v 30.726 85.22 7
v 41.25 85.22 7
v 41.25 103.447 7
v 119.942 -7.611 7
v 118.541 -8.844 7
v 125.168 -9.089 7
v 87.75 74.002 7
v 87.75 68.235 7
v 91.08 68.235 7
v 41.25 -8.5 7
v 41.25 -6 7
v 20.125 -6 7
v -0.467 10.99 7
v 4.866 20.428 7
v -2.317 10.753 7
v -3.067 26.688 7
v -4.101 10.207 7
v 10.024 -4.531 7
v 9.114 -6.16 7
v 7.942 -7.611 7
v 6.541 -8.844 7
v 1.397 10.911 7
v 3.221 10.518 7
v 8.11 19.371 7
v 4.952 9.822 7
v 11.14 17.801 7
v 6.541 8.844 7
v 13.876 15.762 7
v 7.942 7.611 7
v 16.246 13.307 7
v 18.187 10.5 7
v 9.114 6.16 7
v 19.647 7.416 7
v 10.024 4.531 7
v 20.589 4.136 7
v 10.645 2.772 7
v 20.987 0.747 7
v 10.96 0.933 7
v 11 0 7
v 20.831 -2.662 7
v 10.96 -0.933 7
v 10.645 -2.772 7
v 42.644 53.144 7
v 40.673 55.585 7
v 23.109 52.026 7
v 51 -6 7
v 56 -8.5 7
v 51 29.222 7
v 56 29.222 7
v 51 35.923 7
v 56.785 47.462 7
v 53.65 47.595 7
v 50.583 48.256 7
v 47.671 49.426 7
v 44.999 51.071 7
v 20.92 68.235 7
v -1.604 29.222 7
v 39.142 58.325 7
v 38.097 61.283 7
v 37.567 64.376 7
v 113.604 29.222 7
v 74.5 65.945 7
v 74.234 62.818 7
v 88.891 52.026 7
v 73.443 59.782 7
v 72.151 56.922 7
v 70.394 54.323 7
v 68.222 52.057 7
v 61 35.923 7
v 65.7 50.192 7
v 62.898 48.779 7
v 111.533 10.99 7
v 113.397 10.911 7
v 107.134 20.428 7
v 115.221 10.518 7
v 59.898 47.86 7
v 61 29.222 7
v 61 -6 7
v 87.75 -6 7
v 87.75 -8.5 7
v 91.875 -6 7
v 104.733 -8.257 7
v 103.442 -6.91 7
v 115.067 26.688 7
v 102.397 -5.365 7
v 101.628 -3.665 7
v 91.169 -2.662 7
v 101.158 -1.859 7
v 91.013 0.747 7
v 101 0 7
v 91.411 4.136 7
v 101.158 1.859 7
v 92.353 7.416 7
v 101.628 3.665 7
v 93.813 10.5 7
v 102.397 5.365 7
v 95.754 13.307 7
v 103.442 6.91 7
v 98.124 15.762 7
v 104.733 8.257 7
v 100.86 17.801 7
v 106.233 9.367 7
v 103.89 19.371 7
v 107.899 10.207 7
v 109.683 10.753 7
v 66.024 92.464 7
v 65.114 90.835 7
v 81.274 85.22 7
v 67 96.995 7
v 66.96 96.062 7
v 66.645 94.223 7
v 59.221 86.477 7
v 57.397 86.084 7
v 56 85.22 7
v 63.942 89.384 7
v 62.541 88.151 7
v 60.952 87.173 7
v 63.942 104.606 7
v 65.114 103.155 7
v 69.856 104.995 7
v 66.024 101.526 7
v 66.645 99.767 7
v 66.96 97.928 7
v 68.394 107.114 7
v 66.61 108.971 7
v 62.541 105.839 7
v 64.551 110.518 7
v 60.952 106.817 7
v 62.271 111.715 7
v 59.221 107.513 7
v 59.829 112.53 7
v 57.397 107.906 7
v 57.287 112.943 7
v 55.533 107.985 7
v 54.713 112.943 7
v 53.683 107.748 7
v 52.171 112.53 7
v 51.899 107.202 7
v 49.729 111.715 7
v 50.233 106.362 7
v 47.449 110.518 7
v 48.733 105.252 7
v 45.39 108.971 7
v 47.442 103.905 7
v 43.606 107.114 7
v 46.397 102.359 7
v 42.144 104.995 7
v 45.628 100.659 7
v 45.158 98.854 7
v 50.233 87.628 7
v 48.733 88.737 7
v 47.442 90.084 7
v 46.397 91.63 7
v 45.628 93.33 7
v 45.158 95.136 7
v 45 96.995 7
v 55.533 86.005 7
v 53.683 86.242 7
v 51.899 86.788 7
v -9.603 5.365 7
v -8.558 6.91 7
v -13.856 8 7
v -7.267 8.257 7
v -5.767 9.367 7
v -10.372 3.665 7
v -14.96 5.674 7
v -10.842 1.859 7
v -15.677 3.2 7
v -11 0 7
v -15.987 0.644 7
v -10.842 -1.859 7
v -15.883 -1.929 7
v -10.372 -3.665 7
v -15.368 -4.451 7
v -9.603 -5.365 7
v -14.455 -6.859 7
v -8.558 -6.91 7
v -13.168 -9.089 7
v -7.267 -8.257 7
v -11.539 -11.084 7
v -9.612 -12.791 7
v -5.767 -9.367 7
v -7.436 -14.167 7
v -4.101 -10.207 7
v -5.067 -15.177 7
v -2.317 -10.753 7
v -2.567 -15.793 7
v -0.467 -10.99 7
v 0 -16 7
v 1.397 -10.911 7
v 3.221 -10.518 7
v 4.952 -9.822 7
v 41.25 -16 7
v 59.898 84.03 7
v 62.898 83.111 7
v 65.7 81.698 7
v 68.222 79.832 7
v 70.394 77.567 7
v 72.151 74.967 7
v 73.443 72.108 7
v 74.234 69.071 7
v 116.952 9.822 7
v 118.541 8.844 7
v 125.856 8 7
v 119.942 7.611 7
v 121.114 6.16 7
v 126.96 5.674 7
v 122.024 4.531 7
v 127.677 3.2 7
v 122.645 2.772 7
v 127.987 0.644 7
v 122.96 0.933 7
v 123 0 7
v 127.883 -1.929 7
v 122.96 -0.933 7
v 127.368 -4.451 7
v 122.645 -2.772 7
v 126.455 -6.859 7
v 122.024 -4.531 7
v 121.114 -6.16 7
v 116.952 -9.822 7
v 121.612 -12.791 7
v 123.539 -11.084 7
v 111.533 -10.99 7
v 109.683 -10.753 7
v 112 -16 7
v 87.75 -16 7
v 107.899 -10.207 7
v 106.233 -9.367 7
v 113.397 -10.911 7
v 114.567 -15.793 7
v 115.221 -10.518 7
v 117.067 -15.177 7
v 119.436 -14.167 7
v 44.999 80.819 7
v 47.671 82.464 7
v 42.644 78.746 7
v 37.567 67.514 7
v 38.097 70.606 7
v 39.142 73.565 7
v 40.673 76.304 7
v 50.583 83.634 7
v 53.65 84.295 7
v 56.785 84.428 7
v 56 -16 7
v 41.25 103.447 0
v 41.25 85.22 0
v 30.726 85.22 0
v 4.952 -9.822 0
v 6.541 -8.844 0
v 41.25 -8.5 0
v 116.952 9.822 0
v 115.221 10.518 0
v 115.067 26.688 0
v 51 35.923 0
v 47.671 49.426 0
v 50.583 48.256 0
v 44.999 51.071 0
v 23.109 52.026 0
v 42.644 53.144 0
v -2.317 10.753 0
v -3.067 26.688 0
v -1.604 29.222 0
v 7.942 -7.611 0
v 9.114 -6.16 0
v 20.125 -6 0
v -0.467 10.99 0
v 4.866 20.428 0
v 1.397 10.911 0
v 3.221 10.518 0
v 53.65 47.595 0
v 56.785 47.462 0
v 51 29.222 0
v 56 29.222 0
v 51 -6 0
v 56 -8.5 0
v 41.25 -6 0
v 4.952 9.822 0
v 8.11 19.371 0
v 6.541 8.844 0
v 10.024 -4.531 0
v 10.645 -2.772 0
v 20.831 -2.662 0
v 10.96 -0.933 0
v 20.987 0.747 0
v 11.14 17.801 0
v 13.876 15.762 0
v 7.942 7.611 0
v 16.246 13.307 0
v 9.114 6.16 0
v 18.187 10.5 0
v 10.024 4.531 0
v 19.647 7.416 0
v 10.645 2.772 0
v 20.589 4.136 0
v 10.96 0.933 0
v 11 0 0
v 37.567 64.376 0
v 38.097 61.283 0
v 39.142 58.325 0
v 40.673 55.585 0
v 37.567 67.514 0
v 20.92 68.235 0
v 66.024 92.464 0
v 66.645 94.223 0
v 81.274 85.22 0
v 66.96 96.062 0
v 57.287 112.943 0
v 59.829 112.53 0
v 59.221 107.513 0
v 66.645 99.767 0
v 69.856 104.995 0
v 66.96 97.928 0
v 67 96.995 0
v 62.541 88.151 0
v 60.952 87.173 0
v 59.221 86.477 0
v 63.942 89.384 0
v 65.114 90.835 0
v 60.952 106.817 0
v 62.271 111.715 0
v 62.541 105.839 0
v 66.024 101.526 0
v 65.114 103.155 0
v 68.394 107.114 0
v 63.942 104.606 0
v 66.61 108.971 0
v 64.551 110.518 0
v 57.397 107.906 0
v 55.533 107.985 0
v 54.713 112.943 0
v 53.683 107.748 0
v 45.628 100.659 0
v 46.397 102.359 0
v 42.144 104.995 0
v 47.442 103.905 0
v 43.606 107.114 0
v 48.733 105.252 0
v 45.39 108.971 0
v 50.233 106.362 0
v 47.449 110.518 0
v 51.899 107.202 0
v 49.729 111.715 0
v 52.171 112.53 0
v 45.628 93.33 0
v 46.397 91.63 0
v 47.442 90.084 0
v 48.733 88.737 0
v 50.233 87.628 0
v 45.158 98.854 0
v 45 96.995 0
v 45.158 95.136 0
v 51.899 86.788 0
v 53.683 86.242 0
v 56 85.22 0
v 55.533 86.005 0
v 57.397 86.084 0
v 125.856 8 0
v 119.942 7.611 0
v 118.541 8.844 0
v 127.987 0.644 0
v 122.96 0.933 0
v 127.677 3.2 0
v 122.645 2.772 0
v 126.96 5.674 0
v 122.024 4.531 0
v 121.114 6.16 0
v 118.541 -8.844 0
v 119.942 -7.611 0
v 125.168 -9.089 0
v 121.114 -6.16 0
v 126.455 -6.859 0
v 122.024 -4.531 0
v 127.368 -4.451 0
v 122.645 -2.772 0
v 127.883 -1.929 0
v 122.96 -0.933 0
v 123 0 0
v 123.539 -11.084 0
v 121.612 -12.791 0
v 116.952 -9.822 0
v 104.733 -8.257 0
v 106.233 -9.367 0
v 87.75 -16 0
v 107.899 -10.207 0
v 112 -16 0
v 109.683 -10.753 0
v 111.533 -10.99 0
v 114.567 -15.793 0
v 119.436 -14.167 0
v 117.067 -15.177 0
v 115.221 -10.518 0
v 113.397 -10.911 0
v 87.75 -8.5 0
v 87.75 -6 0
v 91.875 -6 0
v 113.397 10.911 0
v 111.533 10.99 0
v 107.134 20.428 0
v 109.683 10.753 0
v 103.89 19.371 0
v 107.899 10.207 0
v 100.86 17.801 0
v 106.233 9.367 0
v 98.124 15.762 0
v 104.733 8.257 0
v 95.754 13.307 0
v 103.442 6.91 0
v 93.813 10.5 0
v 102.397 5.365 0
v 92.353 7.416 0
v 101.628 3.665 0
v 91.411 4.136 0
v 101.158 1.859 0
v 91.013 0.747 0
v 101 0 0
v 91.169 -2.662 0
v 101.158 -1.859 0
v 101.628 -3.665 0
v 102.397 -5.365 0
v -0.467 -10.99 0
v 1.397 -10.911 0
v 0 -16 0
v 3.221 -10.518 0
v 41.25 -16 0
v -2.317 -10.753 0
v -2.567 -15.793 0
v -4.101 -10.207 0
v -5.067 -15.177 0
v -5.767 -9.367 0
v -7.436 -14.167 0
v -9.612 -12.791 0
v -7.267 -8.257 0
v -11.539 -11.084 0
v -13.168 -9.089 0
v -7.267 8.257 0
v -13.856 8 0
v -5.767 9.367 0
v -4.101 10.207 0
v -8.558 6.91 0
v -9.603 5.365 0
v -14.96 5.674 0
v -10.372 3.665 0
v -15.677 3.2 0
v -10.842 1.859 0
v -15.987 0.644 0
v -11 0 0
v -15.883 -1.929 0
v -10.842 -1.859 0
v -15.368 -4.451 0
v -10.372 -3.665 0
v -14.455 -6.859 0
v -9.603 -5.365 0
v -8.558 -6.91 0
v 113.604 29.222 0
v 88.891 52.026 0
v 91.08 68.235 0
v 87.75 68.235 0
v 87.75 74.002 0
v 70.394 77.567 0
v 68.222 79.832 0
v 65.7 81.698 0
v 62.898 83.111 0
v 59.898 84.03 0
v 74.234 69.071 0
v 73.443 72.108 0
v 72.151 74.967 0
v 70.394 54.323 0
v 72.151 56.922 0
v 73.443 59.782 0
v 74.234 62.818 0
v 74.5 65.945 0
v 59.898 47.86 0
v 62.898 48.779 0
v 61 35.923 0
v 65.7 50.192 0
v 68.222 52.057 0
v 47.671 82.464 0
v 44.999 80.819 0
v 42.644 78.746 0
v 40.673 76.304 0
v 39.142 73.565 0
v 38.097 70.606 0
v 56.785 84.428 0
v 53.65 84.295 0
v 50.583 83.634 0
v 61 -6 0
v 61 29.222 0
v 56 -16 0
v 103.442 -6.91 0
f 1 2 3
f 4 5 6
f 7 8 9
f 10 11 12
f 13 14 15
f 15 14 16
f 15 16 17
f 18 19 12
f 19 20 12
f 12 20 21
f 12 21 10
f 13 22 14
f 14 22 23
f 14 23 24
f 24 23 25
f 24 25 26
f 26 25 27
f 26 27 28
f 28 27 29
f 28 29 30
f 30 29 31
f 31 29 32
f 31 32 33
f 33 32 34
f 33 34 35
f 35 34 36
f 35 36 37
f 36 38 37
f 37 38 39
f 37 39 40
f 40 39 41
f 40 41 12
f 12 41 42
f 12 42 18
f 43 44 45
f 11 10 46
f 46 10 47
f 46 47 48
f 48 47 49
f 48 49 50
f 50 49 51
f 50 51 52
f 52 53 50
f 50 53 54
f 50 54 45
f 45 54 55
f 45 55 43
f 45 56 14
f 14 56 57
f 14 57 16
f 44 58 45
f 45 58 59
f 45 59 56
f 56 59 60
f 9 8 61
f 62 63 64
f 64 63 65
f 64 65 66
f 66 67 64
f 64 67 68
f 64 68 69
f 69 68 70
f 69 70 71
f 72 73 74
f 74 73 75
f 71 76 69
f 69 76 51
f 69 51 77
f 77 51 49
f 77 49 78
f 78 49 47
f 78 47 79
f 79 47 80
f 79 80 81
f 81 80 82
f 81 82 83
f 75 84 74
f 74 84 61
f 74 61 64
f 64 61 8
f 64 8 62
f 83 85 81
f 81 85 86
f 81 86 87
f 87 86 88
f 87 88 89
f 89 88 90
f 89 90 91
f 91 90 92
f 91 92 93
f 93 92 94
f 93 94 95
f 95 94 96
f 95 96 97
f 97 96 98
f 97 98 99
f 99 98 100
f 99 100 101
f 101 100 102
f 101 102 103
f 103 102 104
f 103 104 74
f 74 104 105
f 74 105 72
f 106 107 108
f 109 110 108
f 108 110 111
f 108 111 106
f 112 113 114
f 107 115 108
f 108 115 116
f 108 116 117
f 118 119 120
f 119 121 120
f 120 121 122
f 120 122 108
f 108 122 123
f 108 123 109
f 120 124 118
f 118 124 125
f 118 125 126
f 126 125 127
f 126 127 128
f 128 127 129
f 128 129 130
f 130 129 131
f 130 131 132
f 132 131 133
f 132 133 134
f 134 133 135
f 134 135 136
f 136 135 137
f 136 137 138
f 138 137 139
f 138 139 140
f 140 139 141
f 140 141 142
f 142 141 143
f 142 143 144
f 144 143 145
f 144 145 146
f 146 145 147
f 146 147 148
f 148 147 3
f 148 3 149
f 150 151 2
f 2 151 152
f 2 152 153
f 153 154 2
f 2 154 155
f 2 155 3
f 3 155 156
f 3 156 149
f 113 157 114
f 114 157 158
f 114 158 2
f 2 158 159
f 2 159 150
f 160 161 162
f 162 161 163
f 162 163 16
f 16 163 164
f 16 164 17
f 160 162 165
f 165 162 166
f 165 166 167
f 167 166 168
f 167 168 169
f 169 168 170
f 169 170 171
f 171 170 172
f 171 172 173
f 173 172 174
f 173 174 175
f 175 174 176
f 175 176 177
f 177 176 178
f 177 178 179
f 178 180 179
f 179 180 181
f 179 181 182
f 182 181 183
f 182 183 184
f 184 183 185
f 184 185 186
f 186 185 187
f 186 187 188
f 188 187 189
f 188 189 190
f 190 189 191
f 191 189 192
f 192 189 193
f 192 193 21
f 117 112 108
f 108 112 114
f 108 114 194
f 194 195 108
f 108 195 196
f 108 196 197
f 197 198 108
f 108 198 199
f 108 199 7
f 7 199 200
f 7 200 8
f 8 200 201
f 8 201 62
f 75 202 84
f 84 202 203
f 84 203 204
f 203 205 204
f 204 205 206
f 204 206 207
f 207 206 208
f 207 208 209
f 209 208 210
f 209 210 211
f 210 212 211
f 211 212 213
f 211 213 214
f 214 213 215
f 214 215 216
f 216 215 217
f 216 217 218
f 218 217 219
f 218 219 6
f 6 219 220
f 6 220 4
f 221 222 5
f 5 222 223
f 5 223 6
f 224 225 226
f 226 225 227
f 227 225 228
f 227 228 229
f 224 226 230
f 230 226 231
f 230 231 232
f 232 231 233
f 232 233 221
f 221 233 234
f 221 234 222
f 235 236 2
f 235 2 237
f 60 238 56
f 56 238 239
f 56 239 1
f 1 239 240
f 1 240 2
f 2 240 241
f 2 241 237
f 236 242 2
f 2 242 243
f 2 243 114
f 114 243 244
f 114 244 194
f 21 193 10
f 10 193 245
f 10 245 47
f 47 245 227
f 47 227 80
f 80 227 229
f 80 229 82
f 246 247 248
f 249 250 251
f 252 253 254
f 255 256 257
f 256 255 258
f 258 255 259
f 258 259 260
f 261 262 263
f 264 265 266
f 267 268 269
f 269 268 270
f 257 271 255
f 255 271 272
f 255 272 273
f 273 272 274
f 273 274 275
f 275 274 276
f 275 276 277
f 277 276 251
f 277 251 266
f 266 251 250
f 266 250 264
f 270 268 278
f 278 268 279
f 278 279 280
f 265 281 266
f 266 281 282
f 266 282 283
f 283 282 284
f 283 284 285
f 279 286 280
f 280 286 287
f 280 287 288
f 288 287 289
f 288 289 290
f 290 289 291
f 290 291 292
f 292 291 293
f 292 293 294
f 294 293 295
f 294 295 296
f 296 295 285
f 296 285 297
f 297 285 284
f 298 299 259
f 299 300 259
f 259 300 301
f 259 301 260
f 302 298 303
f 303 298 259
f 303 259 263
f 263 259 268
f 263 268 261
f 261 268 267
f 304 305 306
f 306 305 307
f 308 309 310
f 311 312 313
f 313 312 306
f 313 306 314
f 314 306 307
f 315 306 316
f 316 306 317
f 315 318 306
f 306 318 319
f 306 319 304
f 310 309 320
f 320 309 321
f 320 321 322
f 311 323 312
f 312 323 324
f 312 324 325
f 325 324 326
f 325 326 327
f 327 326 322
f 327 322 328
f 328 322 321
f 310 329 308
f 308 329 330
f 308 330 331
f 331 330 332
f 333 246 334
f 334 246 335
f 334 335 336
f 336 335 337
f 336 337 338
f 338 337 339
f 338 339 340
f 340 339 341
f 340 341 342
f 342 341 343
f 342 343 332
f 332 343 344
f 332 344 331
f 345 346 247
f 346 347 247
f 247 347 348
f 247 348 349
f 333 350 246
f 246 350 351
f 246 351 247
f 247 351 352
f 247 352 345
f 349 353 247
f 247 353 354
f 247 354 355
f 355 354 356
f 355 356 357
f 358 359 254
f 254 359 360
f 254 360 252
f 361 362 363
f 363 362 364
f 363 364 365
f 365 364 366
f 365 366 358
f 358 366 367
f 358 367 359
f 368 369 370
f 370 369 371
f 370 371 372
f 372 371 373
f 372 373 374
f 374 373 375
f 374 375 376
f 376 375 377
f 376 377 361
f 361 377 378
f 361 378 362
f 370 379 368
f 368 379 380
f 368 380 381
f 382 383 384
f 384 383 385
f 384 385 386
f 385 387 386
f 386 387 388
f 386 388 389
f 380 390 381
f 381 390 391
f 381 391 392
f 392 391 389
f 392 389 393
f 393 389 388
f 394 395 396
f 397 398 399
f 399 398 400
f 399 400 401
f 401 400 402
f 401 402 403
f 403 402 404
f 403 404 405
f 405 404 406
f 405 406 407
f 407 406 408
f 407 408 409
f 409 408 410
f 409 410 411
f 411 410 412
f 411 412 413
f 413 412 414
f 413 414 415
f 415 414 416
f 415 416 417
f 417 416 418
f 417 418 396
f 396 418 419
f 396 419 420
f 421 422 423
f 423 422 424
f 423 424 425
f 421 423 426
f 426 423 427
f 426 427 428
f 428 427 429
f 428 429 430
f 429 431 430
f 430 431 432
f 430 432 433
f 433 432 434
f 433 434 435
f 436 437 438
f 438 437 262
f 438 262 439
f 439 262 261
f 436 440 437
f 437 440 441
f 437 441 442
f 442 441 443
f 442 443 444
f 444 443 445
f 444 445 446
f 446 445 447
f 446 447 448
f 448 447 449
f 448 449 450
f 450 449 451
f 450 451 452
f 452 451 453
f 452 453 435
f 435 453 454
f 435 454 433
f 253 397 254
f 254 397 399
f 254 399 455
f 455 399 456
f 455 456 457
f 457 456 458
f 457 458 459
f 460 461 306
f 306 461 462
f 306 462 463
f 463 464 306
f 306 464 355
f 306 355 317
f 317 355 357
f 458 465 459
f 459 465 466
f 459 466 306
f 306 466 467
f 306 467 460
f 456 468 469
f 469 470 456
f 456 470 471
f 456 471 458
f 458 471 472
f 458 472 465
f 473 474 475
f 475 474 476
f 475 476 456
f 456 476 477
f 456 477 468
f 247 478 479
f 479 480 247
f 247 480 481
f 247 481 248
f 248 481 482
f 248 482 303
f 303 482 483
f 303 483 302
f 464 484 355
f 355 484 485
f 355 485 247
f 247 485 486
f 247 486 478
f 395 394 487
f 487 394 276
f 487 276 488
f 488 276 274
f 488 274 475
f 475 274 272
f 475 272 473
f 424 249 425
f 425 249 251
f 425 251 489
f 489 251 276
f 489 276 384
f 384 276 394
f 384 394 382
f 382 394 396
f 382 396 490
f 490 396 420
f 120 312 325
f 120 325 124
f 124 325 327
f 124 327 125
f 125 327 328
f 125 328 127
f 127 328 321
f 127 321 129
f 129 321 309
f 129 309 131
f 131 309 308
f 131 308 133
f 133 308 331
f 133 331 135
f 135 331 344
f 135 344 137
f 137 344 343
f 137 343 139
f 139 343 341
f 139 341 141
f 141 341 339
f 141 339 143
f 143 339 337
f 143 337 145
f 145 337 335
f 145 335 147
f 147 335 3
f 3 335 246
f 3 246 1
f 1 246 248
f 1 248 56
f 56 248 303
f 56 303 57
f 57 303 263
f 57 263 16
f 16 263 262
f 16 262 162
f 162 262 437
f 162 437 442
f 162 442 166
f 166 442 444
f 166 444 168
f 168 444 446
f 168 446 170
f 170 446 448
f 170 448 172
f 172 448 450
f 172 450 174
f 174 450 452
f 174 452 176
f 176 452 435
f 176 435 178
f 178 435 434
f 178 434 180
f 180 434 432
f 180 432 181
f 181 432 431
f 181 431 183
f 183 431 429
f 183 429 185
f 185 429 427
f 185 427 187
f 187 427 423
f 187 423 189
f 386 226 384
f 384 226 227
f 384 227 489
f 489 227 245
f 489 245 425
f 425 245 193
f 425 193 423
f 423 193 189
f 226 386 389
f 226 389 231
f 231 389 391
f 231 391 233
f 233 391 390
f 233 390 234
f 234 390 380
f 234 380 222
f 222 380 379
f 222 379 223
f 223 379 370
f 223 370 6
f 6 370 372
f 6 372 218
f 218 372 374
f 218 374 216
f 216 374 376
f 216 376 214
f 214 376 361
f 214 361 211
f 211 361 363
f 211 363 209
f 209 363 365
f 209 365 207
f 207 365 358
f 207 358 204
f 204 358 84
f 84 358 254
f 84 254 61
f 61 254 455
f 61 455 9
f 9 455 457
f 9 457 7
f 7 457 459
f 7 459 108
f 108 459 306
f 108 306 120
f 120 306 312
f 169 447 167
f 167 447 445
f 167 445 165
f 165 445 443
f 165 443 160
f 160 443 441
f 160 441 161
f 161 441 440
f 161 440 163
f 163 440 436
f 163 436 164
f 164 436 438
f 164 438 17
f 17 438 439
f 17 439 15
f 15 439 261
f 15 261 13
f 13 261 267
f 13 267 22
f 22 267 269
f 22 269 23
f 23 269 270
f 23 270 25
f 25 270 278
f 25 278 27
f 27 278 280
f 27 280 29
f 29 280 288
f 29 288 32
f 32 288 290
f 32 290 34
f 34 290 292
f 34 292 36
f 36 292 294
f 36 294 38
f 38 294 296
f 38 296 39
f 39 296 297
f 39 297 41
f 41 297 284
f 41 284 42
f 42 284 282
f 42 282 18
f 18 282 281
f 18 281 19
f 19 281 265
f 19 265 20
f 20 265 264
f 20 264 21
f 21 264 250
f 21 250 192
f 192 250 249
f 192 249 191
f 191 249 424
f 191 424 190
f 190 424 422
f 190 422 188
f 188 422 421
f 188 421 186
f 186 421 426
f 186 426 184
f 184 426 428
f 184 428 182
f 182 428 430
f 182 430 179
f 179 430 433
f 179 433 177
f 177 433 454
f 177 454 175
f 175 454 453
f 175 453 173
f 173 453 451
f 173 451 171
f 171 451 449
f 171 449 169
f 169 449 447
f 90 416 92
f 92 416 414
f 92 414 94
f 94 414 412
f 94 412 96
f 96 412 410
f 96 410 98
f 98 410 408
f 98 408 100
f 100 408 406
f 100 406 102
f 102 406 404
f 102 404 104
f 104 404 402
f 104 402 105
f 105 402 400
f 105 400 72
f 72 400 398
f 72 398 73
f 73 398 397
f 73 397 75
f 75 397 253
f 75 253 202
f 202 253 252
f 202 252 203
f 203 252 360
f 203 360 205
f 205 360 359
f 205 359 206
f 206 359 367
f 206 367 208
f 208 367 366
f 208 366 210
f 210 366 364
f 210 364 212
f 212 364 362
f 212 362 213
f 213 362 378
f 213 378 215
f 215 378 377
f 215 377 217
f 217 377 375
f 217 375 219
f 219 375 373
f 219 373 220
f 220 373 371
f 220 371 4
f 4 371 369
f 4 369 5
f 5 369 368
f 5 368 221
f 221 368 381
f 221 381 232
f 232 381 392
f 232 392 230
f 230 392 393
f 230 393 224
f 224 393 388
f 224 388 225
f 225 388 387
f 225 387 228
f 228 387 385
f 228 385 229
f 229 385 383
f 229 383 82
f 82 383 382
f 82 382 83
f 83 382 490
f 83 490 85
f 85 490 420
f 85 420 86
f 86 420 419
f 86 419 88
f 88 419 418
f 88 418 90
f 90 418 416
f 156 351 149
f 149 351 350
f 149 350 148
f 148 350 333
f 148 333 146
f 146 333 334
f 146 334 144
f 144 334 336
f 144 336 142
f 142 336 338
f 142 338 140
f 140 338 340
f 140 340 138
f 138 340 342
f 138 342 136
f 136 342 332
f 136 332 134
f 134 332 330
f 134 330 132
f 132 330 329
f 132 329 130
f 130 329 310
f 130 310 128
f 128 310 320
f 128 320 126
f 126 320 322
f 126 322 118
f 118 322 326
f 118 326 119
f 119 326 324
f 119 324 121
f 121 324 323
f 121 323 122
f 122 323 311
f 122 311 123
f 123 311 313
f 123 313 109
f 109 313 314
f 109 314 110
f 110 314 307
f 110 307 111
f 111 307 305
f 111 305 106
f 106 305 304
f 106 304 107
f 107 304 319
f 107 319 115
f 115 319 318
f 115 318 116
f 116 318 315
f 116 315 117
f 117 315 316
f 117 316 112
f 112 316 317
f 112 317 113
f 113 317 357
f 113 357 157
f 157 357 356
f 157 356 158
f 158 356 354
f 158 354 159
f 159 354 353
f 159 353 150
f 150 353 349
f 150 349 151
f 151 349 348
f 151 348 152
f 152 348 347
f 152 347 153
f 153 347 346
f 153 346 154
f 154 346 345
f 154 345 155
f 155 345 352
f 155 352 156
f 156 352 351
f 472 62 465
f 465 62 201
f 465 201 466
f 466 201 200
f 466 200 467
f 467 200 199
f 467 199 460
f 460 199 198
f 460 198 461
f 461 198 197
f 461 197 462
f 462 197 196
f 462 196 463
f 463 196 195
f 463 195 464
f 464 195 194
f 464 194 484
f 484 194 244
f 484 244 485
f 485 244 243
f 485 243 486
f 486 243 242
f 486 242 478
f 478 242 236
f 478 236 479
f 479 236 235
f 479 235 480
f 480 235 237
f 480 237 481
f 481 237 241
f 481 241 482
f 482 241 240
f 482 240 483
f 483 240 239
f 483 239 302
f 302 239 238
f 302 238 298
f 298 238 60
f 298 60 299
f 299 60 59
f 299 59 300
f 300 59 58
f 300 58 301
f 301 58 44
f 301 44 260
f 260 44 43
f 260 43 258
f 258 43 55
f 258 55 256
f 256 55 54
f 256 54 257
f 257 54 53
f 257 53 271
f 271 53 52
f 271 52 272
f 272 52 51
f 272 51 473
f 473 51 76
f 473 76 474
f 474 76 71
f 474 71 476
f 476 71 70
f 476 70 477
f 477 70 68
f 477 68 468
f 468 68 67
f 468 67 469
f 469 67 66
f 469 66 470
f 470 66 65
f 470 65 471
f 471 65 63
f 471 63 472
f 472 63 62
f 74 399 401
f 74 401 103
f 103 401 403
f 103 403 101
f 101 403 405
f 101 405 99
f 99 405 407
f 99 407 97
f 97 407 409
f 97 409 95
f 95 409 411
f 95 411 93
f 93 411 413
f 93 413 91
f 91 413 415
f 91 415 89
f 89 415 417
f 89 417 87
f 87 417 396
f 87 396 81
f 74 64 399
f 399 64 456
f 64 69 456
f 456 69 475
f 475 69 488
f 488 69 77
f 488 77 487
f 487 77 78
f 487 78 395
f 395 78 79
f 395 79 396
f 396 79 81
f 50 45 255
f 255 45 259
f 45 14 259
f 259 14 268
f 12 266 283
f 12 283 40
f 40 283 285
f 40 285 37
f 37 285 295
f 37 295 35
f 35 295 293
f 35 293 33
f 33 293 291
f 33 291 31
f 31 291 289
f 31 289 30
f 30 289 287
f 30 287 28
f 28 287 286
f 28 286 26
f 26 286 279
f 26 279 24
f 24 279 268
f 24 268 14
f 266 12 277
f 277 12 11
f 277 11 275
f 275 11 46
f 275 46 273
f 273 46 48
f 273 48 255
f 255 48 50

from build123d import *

# Parameters (mm, degrees)
SKETCH1_R           = 11
BOSS_EXTRUDE1_DEPTH = 7
SKETCH3_R           = 18.5
CUT_EXTRUDE1_DEPTH  = 8
CUT_EXTRUDE3_DEPTH  = 8


with BuildPart() as part:
    # Sketch1 → Boss-Extrude1 (new body)
    with BuildSketch(Plane.XY):
        with BuildLine():
            Line((42.143593539, 104.994845224), (-13.856406461, 8))
            ThreePointArc((-13.856406461, 8), (-13.856406461, -8), (0, -16))
            Line((0, -16), (112, -16))
            ThreePointArc((112, -16), (125.856406461, -8), (125.856406461, 8))
            Line((125.856406461, 8), (69.856406461, 104.994845224))
            ThreePointArc((69.856406461, 104.994845224), (56, 112.994845224), (42.143593539, 104.994845224))
        make_face()
        Circle(SKETCH1_R, mode=Mode.SUBTRACT)
        with Locations((112, 0)):
            Circle(SKETCH1_R, mode=Mode.SUBTRACT)
        with Locations((56, 96.994845224)):
            Circle(SKETCH1_R, mode=Mode.SUBTRACT)
    extrude(amount=BOSS_EXTRUDE1_DEPTH)

    # Sketch3 → Cut-Extrude1 (cut, through all)
    with BuildSketch(Plane.XY.offset(7)):
        with Locations((56, 65.944845224)):
            Circle(SKETCH3_R)
    extrude(amount=-CUT_EXTRUDE1_DEPTH, mode=Mode.SUBTRACT)

    # Sketch6 → Cut-Extrude3 (cut, through all)
    with BuildSketch(Plane.XY):
        with BuildLine():
            Line((23.108803184, 52.025621216), (4.866153476, 20.428425058))
            ThreePointArc((4.866153476, 20.428425058), (18.186533479, 10.5), (20.124611797, -6))
            Line((20.124611797, -6), (51, -6))
            Line((51, -6), (51, 35.922631226))
            Line((51, 35.922631226), (23.108803184, 52.025621216))
        make_face()
        with BuildLine():
            Line((61, 35.922631226), (61, -6))
            Line((61, -6), (91.875388203, -6))
            ThreePointArc((91.875388203, -6), (93.813466521, 10.5), (107.133846524, 20.428425058))
            Line((107.133846524, 20.428425058), (88.891196816, 52.025621216))
            Line((88.891196816, 52.025621216), (61, 35.922631226))
        make_face()
    extrude(amount=CUT_EXTRUDE3_DEPTH, mode=Mode.SUBTRACT)


solid = part.part
